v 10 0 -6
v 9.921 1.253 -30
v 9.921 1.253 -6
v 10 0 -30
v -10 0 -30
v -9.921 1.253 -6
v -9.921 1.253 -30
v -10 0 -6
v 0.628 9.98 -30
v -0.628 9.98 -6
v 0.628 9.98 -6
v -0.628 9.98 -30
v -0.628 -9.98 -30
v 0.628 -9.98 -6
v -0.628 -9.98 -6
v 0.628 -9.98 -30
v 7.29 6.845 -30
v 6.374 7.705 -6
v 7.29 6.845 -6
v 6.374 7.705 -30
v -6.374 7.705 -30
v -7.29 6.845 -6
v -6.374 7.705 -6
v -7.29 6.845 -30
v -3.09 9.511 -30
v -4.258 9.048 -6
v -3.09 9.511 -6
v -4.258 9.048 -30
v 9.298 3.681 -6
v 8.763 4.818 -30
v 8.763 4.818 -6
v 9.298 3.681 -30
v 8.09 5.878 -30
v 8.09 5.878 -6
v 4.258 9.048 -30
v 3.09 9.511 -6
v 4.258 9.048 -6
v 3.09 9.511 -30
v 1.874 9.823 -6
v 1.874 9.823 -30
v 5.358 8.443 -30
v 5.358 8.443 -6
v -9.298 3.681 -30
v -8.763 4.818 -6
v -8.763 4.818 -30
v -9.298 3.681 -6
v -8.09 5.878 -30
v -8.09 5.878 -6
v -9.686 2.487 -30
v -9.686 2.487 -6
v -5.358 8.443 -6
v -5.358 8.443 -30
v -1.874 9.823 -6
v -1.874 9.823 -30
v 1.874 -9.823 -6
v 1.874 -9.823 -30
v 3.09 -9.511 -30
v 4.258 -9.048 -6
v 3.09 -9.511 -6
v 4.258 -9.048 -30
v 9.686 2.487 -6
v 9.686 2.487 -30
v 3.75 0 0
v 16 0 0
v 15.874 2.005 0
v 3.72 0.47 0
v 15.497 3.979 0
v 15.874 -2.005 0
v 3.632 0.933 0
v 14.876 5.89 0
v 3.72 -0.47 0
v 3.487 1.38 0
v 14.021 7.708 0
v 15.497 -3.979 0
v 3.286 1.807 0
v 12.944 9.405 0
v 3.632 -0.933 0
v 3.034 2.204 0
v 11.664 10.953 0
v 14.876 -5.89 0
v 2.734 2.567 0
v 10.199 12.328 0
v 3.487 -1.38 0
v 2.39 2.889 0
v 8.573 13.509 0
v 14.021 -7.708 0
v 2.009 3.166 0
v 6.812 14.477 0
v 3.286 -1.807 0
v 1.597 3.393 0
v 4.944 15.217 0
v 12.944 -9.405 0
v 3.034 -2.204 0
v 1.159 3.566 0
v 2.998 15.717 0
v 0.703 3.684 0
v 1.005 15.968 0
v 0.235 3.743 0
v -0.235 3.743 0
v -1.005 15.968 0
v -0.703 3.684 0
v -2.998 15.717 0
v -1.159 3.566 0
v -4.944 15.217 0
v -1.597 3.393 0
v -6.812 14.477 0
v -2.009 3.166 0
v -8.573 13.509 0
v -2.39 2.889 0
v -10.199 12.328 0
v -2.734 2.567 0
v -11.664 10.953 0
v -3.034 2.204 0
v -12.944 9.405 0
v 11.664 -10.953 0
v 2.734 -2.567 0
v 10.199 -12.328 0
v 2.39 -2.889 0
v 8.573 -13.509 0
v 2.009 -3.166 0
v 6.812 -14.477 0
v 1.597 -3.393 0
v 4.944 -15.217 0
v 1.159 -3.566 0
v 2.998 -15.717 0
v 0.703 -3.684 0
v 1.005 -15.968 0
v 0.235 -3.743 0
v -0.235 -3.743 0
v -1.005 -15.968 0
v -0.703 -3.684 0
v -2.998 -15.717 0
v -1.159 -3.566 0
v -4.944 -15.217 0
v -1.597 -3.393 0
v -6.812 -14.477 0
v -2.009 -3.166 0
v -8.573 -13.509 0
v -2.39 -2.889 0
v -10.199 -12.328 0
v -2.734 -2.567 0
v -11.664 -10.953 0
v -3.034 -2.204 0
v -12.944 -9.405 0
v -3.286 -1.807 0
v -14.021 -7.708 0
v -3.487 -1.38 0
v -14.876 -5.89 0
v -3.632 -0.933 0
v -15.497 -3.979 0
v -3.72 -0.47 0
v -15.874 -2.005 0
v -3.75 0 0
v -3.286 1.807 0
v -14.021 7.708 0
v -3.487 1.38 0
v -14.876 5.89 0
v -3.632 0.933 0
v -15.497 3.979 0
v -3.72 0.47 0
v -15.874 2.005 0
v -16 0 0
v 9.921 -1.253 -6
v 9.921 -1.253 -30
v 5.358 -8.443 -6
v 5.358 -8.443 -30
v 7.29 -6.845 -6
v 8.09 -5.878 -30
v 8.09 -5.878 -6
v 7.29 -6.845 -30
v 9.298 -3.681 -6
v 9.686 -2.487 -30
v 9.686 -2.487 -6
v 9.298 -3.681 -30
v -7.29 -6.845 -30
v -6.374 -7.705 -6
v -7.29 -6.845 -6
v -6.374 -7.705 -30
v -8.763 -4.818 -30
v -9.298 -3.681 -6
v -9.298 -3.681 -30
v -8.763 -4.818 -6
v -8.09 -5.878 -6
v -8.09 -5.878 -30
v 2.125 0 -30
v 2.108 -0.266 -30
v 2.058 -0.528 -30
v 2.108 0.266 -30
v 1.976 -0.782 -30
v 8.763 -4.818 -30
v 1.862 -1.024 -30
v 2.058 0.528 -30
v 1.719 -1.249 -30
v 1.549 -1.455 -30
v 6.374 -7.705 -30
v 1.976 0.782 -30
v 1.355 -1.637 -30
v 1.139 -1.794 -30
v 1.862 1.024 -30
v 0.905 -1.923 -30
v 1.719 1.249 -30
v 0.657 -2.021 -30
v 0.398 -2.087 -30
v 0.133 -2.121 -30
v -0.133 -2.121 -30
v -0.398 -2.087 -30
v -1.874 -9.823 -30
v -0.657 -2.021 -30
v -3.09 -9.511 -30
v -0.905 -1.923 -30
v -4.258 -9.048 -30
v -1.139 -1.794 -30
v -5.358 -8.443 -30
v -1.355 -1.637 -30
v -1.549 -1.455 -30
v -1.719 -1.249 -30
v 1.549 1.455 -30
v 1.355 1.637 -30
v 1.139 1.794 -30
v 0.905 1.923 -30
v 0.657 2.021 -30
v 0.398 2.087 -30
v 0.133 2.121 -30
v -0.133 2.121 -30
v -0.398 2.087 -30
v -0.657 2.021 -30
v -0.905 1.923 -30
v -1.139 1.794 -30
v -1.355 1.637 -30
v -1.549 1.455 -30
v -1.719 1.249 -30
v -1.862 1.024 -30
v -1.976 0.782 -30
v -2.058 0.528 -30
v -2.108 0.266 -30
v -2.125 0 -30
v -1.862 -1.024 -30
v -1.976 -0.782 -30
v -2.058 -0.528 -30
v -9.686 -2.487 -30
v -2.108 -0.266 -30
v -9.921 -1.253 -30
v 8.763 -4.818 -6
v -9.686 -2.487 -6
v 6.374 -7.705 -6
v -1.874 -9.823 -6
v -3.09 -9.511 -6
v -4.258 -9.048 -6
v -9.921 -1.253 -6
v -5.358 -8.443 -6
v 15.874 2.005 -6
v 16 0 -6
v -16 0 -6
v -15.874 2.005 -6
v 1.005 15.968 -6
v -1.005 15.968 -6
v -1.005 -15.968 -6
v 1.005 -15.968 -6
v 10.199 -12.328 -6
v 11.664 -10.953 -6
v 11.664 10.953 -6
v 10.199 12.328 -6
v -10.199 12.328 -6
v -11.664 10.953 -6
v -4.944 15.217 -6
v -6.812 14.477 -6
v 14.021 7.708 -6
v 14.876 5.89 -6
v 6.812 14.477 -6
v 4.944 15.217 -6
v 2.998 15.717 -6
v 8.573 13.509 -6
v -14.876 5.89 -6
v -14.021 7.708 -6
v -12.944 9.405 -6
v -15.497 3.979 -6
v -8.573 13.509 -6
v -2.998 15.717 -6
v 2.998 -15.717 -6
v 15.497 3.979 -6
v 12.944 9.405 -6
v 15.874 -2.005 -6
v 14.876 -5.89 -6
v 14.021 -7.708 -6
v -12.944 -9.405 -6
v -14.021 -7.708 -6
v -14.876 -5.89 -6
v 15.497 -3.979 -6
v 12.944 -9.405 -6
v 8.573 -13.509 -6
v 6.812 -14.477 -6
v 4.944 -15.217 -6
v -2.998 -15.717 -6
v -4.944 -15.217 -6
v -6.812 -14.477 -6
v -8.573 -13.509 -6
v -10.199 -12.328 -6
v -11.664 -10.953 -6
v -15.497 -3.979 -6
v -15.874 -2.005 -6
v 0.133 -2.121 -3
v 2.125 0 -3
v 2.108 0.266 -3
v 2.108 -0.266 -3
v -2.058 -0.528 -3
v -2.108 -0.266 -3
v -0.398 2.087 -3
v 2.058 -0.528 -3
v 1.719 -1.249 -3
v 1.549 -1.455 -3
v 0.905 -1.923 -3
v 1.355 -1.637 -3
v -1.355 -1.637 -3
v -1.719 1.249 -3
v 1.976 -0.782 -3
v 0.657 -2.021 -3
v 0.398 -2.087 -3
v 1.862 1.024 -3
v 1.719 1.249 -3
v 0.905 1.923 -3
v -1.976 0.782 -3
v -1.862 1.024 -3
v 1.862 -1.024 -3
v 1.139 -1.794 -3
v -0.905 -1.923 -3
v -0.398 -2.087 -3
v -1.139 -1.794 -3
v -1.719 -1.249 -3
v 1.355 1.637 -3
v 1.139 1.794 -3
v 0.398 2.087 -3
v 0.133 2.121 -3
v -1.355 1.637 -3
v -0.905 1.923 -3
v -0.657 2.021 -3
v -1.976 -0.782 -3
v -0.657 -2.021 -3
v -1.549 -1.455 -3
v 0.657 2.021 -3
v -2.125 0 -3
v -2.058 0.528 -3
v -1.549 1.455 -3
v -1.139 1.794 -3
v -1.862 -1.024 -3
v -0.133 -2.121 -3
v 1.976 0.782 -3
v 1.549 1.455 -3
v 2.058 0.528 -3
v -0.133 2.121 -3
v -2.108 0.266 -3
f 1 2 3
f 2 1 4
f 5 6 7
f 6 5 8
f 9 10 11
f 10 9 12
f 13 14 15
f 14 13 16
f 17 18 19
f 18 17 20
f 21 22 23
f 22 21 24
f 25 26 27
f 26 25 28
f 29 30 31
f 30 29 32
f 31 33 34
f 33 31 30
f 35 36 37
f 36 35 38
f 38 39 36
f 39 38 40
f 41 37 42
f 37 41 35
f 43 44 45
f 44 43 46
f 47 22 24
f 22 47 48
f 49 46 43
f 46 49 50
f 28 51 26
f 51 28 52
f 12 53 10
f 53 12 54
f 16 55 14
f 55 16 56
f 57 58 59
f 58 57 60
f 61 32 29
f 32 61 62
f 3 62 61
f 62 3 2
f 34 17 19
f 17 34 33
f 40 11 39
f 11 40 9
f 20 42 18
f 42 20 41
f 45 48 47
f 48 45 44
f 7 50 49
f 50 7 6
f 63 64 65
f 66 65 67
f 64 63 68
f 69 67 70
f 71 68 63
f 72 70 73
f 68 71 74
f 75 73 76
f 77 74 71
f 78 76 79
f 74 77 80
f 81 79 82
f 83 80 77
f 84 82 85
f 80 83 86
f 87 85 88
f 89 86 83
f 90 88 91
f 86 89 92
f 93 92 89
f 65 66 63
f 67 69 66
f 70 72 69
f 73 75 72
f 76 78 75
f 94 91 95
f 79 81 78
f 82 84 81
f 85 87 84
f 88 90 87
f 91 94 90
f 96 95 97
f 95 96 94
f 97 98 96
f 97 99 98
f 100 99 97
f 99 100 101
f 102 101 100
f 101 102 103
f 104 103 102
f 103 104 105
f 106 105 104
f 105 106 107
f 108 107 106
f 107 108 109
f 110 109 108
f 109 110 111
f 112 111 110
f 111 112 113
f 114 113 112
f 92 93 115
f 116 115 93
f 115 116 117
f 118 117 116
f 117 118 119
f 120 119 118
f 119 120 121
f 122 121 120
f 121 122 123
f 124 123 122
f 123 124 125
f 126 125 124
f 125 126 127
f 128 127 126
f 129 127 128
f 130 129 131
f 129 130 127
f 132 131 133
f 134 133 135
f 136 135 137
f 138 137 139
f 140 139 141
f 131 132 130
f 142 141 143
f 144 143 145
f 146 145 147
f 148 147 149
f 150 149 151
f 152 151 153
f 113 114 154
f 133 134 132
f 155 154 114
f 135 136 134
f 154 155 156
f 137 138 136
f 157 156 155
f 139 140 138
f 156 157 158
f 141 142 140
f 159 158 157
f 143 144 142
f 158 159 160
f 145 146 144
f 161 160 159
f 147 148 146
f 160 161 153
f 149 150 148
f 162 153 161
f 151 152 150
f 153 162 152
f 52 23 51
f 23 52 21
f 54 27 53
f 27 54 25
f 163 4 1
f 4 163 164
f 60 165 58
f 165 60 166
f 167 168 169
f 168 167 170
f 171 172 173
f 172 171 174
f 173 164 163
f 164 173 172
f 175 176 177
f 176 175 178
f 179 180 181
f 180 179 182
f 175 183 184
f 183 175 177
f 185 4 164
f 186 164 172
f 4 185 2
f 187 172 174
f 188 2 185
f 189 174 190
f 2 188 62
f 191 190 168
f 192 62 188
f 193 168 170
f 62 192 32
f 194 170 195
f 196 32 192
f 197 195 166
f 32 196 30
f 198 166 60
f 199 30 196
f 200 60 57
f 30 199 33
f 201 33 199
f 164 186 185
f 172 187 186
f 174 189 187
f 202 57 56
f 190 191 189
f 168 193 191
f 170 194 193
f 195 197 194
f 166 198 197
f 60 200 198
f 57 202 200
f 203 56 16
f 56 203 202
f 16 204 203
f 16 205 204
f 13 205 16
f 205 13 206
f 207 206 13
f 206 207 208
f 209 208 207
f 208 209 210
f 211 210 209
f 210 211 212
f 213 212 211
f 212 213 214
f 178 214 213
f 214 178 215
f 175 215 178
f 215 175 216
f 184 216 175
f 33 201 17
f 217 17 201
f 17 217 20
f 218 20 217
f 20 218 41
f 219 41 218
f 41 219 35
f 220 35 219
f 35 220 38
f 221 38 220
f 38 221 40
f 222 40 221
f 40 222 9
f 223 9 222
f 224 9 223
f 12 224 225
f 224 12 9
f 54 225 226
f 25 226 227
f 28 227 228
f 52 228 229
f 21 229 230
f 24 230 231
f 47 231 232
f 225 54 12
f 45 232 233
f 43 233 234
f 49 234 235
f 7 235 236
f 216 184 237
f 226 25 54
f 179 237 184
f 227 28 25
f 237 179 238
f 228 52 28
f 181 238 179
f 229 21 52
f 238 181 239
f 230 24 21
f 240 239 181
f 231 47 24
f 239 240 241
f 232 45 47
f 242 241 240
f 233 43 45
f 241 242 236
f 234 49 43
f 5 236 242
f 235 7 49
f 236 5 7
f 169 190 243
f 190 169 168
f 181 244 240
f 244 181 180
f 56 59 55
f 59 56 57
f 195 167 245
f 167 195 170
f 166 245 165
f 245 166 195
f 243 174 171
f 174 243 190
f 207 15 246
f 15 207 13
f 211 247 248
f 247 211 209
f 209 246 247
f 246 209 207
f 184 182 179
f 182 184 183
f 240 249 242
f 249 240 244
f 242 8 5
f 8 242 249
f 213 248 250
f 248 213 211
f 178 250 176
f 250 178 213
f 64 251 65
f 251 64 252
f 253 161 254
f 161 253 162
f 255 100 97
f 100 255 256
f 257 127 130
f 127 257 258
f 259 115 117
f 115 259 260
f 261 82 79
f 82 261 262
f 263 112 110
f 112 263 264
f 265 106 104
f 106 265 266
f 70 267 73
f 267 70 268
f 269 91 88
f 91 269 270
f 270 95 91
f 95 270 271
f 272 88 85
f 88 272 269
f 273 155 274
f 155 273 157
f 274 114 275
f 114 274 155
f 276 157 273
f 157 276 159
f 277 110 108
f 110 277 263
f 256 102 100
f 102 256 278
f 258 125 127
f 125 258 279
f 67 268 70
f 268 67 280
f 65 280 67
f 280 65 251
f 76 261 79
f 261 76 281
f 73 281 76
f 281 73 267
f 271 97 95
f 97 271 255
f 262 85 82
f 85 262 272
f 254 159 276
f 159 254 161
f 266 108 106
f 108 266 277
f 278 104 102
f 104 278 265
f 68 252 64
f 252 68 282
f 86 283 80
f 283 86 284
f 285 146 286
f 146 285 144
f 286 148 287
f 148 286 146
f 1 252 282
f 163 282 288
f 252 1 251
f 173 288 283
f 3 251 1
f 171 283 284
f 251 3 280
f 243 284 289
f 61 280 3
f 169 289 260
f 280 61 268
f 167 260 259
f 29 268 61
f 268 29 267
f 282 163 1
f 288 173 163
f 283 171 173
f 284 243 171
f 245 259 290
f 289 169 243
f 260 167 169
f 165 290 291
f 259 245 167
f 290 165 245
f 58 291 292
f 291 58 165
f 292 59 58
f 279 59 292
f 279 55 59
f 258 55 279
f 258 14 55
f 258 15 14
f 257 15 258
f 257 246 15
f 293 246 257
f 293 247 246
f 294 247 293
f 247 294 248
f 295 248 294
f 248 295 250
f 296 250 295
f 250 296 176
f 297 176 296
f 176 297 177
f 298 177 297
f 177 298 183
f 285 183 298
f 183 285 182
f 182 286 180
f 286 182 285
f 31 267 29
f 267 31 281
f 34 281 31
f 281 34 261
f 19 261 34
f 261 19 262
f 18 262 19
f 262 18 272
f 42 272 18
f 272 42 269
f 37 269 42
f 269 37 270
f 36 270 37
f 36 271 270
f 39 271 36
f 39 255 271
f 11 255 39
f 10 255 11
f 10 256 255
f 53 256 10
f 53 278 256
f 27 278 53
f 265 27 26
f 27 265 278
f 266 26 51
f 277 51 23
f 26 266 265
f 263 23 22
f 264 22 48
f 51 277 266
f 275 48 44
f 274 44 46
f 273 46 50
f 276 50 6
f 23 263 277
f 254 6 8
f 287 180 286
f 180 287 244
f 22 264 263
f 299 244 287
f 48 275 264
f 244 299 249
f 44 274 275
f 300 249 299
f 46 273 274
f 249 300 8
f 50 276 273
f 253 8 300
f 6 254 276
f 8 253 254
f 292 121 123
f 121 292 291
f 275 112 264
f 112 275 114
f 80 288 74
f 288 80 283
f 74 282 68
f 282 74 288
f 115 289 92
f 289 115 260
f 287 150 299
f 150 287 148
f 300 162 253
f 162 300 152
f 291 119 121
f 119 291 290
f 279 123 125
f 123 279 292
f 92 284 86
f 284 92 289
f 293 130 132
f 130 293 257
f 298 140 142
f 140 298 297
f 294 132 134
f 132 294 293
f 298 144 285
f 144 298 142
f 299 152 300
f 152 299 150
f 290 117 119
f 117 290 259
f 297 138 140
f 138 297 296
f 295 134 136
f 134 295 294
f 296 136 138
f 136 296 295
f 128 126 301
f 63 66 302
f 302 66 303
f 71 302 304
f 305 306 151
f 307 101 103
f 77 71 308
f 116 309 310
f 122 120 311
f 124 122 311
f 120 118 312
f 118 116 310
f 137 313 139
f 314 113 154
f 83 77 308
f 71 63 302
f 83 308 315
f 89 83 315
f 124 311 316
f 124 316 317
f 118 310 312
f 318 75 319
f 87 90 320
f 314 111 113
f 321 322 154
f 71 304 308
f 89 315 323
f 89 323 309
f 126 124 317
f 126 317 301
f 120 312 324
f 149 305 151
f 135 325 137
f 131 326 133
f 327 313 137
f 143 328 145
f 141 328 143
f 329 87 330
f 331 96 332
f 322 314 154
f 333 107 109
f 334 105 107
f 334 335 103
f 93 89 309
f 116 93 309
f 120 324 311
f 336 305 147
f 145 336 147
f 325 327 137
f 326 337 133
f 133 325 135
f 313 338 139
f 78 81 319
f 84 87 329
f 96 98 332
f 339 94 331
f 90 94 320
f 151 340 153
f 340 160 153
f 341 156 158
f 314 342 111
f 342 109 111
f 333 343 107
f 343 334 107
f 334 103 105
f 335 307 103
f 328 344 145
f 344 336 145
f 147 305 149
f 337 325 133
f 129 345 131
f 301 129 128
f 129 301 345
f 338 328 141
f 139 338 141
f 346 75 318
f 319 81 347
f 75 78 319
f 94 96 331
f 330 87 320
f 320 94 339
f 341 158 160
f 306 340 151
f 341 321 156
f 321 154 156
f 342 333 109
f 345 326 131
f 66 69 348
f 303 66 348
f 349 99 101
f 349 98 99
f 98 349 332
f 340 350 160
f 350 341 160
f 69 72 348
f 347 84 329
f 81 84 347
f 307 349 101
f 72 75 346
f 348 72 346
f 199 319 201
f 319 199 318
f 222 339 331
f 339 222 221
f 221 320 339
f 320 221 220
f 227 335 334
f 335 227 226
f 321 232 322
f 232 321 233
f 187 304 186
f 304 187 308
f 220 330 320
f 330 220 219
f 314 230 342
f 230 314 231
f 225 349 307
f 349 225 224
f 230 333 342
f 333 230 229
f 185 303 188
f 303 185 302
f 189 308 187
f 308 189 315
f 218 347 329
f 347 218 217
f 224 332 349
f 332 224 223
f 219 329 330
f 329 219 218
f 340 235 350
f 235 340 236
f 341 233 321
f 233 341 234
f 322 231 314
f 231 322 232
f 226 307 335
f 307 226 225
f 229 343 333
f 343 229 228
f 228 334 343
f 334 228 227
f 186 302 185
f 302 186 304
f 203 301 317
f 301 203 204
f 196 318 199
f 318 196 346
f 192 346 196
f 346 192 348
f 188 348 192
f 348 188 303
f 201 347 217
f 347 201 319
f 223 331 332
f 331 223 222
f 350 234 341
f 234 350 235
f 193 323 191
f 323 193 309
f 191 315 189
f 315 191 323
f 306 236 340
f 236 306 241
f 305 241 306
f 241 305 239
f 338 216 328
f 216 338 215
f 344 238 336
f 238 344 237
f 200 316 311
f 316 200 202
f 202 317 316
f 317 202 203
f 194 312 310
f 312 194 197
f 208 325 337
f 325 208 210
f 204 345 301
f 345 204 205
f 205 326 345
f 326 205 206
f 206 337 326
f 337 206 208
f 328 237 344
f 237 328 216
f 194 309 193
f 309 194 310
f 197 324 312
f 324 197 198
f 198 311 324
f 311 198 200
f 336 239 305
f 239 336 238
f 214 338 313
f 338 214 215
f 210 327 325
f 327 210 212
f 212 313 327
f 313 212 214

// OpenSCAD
$fn = 50;


difference() {
	union() {
		translate(v = [0, 0, -30.0000000000]) {
			cylinder(h = 30, r = 10.0000000000);
		}
		translate(v = [0, 0, -6.0000000000]) {
			cylinder(h = 6, r = 16.0000000000);
		}
	}
	union() {
		translate(v = [0, 0, 0]) {
			rotate(a = [0, 0, 0]) {
				difference() {
					union() {
						#translate(v = [0, 0, -30.0000000000]) {
							cylinder(h = 30, r = 2.0000000000);
						}
						#translate(v = [0, 0, -3]) {
							cylinder(h = 3, r = 10.0000000000, r1 = 2.1250000000, r2 = 3.7500000000);
						}
						#translate(v = [0, 0, -30.0000000000]) {
							cylinder(h = 30, r = 2.1250000000);
						}
						#translate(v = [0, 0, -30.0000000000]) {
							cylinder(h = 30, r = 2.0000000000);
						}
					}
					union();
				}
			}
		}
	}
}
